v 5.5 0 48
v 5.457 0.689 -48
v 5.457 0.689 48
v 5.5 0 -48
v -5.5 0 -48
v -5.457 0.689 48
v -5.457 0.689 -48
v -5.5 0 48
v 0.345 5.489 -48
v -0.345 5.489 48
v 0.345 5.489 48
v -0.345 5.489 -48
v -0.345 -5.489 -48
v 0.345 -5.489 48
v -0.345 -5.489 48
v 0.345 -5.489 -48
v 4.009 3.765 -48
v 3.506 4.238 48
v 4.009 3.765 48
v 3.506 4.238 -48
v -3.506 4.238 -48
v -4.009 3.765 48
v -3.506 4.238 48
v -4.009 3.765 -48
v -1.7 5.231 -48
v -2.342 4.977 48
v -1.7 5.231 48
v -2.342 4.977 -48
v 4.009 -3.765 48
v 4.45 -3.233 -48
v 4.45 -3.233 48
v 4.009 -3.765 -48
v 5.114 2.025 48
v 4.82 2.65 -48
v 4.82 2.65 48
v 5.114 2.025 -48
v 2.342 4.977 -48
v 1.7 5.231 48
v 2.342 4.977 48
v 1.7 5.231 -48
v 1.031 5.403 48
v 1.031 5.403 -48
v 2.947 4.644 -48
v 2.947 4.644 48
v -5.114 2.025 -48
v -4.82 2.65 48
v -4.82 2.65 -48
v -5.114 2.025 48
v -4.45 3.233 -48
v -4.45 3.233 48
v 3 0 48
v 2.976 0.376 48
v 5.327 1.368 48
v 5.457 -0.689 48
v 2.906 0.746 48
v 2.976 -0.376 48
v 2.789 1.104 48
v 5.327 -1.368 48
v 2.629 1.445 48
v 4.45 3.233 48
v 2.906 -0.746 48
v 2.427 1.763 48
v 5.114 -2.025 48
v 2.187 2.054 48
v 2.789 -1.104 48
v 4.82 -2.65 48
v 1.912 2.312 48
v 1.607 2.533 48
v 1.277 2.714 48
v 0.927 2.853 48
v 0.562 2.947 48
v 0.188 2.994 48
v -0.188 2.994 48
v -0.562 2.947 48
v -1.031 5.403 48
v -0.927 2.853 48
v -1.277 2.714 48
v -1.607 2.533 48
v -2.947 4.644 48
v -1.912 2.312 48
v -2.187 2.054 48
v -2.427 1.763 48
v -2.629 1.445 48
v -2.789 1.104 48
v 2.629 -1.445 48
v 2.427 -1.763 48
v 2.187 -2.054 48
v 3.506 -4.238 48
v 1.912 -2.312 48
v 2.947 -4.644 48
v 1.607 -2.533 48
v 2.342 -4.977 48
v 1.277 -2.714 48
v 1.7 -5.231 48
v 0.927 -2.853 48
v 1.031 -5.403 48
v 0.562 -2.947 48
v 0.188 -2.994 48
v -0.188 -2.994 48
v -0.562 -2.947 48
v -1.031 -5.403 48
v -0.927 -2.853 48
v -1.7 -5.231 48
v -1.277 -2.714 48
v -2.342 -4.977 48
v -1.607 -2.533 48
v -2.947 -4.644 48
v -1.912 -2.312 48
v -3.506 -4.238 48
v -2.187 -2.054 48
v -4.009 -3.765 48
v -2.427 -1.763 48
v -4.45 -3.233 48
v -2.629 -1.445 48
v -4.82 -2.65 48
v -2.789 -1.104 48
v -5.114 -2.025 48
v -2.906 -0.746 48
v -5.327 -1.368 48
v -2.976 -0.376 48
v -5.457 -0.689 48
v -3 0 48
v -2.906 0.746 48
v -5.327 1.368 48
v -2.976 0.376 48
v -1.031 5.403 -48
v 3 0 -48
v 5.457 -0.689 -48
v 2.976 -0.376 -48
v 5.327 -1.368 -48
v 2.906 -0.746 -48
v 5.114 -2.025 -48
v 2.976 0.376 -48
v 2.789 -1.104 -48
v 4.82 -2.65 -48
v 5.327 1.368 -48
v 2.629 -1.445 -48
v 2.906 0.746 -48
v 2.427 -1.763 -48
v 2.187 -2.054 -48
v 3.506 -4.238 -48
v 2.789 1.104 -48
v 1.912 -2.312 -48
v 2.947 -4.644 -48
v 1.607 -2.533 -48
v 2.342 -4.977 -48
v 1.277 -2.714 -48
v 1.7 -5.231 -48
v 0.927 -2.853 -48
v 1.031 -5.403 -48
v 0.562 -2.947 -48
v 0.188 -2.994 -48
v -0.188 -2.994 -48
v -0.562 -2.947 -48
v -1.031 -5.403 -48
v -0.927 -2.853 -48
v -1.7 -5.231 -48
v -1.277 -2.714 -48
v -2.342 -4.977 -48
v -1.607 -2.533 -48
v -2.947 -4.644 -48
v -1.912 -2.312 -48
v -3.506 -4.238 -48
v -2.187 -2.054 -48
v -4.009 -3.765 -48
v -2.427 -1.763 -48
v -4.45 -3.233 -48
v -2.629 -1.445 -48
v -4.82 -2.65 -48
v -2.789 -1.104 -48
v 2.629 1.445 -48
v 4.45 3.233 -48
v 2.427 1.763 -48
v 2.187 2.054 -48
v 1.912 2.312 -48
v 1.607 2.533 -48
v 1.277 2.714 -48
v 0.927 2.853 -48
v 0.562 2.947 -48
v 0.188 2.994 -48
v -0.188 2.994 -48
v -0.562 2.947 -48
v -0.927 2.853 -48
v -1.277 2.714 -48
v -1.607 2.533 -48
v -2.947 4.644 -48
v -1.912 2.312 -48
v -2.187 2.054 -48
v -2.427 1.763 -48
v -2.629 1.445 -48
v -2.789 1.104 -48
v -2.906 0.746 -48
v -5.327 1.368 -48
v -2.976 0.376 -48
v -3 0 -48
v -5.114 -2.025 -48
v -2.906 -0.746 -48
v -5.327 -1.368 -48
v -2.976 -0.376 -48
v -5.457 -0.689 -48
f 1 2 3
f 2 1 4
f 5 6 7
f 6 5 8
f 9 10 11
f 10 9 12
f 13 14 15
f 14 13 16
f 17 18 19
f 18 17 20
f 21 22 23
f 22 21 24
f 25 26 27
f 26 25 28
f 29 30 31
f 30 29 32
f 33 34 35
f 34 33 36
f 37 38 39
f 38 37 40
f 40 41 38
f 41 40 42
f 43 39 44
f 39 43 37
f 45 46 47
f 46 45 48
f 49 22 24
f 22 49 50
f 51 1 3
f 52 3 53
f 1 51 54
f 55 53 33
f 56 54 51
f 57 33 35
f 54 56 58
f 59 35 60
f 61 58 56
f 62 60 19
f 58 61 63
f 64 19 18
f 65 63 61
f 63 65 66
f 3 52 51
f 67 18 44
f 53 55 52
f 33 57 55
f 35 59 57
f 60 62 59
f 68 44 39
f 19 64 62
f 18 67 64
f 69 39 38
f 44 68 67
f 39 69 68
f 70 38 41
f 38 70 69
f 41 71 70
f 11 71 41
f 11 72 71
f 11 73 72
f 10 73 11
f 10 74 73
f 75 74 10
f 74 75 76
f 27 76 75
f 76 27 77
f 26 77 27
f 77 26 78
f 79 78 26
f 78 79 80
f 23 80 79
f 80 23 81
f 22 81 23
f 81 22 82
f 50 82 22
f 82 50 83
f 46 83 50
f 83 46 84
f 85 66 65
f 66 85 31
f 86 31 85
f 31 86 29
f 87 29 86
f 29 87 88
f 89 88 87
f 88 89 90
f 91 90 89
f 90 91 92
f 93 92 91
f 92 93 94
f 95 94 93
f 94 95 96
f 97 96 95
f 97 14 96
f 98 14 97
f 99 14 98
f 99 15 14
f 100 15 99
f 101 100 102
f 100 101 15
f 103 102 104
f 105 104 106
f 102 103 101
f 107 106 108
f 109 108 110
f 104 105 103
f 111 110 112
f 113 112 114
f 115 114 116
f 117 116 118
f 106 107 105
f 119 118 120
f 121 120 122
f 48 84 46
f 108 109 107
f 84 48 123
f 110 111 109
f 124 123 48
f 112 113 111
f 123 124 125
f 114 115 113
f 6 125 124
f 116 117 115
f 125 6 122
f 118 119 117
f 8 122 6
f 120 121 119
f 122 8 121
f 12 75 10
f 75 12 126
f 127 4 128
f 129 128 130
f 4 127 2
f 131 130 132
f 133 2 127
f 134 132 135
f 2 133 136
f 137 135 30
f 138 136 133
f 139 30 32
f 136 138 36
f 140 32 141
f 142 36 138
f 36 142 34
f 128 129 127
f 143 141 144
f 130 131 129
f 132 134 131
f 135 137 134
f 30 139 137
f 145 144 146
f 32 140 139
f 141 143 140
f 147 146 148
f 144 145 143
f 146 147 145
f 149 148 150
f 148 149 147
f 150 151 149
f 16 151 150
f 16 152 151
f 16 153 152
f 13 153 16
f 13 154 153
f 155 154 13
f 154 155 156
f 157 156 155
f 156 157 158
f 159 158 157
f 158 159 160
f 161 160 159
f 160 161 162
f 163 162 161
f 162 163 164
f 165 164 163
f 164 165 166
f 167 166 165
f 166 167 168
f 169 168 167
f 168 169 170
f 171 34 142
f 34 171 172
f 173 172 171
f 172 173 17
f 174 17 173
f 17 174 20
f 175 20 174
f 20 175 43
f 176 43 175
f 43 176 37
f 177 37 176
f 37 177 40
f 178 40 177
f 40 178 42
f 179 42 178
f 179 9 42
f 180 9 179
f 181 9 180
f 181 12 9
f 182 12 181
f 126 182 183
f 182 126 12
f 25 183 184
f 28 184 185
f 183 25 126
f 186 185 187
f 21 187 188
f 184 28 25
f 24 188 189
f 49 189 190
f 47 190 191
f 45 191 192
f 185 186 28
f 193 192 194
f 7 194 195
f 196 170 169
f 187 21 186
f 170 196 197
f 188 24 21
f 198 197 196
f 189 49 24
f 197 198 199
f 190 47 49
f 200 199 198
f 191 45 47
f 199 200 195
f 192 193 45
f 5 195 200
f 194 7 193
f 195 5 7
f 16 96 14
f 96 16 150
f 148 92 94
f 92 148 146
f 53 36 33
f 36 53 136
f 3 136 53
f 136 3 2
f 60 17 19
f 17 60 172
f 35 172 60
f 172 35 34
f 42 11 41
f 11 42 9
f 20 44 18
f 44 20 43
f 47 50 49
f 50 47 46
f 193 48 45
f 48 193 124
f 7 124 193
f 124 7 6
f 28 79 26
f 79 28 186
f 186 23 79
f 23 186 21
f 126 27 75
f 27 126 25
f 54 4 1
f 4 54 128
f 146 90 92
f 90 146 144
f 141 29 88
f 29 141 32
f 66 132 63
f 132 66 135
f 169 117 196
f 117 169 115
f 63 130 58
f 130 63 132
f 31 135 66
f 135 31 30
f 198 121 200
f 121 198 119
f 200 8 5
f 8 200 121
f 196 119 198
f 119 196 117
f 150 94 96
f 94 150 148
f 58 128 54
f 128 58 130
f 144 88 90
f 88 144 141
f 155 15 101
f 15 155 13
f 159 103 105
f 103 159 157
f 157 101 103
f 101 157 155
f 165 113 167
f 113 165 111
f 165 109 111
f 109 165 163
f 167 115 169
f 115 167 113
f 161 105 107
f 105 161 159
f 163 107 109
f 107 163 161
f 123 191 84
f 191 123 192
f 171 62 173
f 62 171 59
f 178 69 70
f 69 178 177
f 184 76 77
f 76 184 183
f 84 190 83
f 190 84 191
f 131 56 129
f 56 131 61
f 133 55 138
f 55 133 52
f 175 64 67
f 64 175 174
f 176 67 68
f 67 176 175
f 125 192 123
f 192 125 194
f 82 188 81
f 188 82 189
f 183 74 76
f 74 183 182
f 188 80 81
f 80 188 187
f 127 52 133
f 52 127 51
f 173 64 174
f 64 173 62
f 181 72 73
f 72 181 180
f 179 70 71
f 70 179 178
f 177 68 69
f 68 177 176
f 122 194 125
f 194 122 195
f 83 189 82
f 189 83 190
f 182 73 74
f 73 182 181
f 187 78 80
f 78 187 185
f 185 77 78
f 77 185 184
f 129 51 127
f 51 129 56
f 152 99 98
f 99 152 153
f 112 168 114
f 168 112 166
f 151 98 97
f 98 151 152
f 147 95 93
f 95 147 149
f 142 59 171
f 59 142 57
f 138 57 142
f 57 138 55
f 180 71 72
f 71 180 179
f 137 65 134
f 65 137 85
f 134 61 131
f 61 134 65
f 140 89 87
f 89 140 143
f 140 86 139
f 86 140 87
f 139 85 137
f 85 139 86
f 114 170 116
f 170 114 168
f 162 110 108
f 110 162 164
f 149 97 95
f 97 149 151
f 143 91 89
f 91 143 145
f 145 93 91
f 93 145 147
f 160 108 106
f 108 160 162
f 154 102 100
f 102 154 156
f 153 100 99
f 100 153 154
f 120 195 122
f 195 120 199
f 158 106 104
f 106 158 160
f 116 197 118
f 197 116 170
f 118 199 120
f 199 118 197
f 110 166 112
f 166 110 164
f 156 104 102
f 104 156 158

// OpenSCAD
$fn = 50;


difference() {
	union() {
		translate(v = [0, 0, -48.0000000000]) {
			cylinder(h = 96, r = 5.5000000000);
		}
	}
	union() {
		translate(v = [0, 0, -100.0000000000]) {
			cylinder(h = 200, r = 3.0000000000);
		}
	}
}
